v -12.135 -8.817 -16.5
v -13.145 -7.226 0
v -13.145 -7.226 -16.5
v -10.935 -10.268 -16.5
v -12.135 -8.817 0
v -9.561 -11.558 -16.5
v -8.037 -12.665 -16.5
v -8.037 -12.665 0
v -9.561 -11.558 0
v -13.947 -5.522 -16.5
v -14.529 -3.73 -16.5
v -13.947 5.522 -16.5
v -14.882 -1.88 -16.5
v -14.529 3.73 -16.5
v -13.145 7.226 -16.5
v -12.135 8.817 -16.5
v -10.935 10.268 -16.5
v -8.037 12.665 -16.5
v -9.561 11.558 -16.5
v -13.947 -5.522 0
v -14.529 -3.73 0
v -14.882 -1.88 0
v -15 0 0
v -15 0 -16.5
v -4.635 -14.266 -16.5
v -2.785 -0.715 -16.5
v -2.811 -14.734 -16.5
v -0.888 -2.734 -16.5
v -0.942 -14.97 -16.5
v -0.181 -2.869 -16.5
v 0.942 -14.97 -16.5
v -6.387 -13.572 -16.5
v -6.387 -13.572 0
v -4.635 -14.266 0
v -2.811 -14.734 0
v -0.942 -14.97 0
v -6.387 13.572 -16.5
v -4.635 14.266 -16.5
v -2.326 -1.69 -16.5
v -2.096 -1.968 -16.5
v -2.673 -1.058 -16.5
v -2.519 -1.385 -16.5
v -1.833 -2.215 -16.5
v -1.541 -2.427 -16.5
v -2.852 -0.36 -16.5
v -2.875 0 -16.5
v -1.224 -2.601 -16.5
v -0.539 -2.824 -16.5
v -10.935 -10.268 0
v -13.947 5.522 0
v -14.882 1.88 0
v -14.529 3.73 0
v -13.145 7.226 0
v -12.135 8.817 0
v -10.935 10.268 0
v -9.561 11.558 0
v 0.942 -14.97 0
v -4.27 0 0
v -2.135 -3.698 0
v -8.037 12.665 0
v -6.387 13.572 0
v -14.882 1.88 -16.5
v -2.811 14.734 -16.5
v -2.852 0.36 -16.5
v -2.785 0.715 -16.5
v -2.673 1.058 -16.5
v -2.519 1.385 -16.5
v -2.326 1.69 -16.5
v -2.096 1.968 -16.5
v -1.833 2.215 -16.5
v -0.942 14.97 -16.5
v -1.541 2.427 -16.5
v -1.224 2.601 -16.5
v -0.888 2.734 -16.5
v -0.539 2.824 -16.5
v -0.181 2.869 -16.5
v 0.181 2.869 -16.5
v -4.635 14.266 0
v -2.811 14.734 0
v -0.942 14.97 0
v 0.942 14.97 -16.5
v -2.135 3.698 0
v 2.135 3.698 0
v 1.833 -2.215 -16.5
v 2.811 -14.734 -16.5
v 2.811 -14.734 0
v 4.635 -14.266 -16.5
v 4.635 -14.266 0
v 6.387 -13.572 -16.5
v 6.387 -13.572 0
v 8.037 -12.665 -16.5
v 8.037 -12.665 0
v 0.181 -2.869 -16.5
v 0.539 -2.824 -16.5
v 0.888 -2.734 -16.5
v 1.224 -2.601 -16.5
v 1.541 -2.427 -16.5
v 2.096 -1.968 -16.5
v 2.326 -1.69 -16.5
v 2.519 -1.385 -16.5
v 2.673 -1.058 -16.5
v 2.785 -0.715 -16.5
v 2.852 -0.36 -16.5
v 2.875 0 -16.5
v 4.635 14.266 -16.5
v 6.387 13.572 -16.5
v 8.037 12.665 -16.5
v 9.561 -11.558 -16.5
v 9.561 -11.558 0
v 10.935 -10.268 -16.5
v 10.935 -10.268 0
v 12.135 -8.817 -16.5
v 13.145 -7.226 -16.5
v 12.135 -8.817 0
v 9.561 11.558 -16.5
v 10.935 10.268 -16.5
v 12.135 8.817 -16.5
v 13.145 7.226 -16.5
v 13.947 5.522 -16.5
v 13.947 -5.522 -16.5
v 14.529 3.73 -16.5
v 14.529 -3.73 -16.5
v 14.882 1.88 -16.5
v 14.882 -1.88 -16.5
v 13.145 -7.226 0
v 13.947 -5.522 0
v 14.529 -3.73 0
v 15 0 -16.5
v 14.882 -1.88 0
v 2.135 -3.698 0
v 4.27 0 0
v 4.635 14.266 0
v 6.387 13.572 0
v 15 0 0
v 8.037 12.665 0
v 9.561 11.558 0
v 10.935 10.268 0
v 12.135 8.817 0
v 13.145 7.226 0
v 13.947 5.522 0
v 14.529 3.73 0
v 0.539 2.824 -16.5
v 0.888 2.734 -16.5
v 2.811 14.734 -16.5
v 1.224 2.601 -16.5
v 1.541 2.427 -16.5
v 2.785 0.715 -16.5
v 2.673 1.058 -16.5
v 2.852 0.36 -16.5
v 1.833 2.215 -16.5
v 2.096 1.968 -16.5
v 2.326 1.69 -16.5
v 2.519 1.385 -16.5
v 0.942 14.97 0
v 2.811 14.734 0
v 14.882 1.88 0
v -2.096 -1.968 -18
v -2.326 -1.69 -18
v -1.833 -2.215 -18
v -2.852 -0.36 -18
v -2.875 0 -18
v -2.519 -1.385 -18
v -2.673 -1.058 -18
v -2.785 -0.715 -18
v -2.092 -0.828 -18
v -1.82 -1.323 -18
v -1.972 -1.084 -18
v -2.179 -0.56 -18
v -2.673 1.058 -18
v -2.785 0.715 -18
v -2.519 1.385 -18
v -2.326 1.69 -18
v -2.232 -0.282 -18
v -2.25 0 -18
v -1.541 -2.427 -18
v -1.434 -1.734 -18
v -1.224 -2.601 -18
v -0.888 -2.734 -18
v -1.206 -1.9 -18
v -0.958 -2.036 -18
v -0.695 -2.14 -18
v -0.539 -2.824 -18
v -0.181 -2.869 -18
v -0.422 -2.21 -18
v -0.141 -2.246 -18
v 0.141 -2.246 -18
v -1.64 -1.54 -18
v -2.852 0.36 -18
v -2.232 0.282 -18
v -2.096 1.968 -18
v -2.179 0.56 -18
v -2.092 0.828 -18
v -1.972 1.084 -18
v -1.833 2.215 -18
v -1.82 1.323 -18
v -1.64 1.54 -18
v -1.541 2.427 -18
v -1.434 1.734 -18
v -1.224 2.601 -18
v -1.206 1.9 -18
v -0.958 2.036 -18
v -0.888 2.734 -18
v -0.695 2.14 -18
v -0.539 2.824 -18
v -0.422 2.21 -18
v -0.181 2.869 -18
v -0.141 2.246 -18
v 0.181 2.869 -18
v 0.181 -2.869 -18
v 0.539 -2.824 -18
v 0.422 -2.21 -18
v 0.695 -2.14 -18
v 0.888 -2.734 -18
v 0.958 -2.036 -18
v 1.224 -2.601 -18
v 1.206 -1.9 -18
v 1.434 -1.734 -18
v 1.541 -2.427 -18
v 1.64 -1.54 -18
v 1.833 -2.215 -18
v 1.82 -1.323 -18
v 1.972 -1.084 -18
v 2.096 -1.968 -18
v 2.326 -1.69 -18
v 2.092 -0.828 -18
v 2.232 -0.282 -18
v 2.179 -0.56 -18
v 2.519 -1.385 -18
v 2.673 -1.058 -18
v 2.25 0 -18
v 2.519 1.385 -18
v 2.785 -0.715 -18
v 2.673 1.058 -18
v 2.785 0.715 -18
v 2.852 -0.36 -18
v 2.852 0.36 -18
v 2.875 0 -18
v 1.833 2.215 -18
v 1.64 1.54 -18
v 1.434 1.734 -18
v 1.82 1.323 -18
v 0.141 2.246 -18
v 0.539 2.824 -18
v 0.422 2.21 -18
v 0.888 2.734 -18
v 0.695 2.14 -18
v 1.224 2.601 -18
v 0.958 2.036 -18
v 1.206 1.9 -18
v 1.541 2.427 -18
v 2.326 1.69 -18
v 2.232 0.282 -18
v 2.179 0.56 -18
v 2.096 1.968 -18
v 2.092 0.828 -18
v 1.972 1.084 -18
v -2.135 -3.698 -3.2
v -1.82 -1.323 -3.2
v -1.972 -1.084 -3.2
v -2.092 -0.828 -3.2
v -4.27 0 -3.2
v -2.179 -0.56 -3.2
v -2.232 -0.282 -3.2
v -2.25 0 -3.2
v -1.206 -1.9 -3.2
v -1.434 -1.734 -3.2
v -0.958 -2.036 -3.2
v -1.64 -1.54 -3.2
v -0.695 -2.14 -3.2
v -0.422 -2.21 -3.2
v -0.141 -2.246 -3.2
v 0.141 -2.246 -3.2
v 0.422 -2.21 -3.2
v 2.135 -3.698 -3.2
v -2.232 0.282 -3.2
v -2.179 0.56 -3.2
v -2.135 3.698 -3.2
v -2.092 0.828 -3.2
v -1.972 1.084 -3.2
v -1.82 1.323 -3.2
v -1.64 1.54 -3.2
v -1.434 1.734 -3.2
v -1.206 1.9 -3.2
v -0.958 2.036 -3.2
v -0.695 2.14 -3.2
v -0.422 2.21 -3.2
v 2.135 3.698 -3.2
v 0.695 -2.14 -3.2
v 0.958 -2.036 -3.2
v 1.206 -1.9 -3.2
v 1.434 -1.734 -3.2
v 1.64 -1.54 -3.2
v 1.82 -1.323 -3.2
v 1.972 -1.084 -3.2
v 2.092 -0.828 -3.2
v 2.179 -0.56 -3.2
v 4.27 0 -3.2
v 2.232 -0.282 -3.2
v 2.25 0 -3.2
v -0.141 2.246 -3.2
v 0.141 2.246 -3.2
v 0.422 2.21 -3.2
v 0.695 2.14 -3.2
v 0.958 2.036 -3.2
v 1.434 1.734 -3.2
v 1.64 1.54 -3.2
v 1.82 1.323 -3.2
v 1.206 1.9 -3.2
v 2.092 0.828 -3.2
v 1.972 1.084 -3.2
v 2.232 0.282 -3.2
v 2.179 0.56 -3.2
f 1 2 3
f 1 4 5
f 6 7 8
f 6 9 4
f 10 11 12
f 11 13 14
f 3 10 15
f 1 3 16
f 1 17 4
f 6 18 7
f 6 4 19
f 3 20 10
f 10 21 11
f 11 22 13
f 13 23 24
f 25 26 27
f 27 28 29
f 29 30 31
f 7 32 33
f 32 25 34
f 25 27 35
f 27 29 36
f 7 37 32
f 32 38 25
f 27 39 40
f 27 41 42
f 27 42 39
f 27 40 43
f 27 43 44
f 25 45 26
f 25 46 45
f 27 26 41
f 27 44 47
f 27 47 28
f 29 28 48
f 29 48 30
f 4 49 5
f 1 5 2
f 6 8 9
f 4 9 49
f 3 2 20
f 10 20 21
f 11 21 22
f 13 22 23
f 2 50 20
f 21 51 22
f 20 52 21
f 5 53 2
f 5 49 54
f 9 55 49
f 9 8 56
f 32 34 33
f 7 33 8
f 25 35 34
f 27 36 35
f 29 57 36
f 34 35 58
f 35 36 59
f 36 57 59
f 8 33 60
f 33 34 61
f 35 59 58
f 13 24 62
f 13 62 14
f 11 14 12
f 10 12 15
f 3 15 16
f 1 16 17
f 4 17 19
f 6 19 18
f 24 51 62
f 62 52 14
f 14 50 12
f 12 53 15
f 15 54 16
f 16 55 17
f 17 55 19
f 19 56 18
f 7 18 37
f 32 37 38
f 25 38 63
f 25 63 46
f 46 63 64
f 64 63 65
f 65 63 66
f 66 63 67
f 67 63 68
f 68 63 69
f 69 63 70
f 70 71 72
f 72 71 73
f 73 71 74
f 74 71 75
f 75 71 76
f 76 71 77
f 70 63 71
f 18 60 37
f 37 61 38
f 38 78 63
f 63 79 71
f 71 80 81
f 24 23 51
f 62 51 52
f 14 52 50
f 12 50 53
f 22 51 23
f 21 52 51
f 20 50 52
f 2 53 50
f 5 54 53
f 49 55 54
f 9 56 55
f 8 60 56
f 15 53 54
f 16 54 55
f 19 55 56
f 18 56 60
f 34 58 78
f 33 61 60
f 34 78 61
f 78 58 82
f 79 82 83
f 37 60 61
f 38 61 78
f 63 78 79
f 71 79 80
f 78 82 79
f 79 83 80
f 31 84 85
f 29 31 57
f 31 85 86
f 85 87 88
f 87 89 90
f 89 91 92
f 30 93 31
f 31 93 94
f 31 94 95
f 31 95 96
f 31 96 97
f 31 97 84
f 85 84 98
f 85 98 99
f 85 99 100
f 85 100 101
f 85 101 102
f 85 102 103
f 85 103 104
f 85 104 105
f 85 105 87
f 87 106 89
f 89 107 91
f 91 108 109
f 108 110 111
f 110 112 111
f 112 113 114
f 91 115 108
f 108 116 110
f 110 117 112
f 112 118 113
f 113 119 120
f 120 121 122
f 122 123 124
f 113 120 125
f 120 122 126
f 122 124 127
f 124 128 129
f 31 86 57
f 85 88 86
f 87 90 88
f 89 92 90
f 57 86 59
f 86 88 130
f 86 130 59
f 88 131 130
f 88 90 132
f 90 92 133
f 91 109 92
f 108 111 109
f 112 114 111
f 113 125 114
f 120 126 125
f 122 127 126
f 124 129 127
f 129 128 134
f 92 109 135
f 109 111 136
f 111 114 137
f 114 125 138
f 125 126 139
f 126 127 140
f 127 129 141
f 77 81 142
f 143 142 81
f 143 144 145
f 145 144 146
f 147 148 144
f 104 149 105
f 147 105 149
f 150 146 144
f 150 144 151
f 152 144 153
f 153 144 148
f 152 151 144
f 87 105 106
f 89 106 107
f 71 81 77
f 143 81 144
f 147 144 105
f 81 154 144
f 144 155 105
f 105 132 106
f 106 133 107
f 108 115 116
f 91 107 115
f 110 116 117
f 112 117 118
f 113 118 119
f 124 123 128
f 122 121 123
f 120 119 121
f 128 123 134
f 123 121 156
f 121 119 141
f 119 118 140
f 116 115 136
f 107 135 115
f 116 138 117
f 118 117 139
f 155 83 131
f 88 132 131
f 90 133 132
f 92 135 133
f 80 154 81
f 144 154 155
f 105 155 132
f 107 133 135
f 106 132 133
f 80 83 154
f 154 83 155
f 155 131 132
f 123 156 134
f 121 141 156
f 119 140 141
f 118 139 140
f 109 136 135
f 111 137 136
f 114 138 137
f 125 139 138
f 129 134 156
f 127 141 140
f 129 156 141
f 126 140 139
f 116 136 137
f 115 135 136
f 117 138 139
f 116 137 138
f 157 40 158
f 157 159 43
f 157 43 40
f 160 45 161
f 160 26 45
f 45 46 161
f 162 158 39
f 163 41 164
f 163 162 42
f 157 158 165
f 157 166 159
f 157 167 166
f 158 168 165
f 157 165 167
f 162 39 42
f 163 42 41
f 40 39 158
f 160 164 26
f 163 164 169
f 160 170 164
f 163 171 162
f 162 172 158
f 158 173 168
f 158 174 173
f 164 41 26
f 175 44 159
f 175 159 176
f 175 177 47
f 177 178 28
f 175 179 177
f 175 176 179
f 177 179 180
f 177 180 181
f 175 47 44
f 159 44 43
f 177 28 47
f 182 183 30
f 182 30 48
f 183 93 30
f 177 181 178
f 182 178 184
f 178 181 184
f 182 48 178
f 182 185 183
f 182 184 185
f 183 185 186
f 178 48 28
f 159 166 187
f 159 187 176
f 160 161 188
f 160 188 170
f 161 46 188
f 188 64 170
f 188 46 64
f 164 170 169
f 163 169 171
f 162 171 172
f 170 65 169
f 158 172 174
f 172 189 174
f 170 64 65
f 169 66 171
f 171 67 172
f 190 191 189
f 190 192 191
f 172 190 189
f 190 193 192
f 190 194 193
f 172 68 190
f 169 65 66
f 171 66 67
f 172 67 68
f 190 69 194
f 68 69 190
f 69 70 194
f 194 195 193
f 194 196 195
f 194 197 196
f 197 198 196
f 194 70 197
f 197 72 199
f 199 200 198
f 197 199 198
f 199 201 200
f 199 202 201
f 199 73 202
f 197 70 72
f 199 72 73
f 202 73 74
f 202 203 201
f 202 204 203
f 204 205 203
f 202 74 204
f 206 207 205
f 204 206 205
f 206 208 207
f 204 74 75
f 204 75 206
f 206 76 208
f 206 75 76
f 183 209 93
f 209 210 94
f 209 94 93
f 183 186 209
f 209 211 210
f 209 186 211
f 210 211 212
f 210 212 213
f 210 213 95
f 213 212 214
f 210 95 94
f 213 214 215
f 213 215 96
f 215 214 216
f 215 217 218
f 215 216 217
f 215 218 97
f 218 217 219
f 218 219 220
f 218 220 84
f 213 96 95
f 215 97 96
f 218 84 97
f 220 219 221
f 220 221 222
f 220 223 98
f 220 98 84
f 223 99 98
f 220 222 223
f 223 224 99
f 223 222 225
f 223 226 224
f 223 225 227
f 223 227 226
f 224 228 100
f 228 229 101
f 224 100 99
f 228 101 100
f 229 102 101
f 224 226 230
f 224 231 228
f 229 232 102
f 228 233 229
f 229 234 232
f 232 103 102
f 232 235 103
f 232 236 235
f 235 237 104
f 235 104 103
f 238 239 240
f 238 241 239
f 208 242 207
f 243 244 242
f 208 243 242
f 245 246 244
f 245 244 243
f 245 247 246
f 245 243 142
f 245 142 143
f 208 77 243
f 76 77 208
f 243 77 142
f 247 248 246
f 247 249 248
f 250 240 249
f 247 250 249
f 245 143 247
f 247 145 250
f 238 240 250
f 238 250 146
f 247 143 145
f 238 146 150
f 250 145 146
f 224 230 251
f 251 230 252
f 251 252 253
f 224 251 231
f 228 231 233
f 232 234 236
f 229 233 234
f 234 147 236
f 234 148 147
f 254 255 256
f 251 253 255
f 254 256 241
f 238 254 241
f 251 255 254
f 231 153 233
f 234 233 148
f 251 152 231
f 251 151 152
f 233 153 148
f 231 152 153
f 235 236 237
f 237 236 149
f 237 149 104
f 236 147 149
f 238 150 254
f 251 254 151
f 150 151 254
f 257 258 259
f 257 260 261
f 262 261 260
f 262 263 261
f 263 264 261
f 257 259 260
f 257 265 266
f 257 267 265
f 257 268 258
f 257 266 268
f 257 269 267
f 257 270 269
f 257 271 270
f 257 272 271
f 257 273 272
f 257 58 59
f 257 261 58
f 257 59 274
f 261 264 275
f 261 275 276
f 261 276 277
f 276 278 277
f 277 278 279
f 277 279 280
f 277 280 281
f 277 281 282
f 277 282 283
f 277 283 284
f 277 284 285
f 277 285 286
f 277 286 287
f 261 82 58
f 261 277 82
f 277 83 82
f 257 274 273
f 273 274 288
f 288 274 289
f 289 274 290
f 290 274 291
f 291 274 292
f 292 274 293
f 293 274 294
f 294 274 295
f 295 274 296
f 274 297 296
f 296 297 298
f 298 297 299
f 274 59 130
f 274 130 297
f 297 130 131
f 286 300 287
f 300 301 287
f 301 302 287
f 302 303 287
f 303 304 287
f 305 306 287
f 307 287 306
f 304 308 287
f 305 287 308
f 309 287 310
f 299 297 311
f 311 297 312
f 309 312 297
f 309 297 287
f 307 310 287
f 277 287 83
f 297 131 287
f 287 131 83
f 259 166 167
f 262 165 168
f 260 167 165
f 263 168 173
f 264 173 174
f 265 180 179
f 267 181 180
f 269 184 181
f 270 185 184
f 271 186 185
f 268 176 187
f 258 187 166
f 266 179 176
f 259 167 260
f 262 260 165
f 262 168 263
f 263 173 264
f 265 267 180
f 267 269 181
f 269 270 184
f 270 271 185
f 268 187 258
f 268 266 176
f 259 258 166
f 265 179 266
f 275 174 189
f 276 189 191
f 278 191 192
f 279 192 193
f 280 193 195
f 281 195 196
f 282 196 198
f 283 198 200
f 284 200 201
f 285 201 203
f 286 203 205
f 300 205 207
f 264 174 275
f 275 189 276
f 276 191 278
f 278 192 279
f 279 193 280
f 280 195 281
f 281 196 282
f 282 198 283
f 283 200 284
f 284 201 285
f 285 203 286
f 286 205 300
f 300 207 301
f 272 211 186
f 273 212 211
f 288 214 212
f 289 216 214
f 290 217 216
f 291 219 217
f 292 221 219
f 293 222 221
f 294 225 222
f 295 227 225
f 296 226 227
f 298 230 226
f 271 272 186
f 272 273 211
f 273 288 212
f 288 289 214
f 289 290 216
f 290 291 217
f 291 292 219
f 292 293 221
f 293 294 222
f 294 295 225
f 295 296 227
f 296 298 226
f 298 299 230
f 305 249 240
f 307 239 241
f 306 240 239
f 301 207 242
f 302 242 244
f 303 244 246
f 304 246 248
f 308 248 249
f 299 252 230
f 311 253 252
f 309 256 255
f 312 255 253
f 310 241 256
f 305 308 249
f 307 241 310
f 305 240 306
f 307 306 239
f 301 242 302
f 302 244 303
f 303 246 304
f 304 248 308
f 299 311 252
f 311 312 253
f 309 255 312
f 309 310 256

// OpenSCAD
$fn = 50;


difference() {
	union() {
		translate(v = [0, 0, -16.5000000000]) {
			cylinder(h = 16.5000000000, r = 15.0000000000);
		}
		#translate(v = [0, 0, -18.0000000000]) {
			cylinder(h = 18, r = 2.8750000000);
		}
	}
	union() {
		translate(v = [0, 0, 0]) {
			rotate(a = [0, 0, 0]) {
				difference() {
					union() {
						translate(v = [0, 0, -3.2000000000]) {
							linear_extrude(height = 3.2000000000) {
								polygon(points = [[4.2698000000, 0.0000000000], [2.1349000000, 3.6977552691], [-2.1349000000, 3.6977552691], [-4.2698000000, 0.0000000000], [-2.1349000000, -3.6977552691], [2.1349000000, -3.6977552691]]);
							}
						}
					}
					union();
				}
			}
		}
		#translate(v = [0, 0, -100.0000000000]) {
			cylinder(h = 200, r = 2.2500000000);
		}
	}
}
